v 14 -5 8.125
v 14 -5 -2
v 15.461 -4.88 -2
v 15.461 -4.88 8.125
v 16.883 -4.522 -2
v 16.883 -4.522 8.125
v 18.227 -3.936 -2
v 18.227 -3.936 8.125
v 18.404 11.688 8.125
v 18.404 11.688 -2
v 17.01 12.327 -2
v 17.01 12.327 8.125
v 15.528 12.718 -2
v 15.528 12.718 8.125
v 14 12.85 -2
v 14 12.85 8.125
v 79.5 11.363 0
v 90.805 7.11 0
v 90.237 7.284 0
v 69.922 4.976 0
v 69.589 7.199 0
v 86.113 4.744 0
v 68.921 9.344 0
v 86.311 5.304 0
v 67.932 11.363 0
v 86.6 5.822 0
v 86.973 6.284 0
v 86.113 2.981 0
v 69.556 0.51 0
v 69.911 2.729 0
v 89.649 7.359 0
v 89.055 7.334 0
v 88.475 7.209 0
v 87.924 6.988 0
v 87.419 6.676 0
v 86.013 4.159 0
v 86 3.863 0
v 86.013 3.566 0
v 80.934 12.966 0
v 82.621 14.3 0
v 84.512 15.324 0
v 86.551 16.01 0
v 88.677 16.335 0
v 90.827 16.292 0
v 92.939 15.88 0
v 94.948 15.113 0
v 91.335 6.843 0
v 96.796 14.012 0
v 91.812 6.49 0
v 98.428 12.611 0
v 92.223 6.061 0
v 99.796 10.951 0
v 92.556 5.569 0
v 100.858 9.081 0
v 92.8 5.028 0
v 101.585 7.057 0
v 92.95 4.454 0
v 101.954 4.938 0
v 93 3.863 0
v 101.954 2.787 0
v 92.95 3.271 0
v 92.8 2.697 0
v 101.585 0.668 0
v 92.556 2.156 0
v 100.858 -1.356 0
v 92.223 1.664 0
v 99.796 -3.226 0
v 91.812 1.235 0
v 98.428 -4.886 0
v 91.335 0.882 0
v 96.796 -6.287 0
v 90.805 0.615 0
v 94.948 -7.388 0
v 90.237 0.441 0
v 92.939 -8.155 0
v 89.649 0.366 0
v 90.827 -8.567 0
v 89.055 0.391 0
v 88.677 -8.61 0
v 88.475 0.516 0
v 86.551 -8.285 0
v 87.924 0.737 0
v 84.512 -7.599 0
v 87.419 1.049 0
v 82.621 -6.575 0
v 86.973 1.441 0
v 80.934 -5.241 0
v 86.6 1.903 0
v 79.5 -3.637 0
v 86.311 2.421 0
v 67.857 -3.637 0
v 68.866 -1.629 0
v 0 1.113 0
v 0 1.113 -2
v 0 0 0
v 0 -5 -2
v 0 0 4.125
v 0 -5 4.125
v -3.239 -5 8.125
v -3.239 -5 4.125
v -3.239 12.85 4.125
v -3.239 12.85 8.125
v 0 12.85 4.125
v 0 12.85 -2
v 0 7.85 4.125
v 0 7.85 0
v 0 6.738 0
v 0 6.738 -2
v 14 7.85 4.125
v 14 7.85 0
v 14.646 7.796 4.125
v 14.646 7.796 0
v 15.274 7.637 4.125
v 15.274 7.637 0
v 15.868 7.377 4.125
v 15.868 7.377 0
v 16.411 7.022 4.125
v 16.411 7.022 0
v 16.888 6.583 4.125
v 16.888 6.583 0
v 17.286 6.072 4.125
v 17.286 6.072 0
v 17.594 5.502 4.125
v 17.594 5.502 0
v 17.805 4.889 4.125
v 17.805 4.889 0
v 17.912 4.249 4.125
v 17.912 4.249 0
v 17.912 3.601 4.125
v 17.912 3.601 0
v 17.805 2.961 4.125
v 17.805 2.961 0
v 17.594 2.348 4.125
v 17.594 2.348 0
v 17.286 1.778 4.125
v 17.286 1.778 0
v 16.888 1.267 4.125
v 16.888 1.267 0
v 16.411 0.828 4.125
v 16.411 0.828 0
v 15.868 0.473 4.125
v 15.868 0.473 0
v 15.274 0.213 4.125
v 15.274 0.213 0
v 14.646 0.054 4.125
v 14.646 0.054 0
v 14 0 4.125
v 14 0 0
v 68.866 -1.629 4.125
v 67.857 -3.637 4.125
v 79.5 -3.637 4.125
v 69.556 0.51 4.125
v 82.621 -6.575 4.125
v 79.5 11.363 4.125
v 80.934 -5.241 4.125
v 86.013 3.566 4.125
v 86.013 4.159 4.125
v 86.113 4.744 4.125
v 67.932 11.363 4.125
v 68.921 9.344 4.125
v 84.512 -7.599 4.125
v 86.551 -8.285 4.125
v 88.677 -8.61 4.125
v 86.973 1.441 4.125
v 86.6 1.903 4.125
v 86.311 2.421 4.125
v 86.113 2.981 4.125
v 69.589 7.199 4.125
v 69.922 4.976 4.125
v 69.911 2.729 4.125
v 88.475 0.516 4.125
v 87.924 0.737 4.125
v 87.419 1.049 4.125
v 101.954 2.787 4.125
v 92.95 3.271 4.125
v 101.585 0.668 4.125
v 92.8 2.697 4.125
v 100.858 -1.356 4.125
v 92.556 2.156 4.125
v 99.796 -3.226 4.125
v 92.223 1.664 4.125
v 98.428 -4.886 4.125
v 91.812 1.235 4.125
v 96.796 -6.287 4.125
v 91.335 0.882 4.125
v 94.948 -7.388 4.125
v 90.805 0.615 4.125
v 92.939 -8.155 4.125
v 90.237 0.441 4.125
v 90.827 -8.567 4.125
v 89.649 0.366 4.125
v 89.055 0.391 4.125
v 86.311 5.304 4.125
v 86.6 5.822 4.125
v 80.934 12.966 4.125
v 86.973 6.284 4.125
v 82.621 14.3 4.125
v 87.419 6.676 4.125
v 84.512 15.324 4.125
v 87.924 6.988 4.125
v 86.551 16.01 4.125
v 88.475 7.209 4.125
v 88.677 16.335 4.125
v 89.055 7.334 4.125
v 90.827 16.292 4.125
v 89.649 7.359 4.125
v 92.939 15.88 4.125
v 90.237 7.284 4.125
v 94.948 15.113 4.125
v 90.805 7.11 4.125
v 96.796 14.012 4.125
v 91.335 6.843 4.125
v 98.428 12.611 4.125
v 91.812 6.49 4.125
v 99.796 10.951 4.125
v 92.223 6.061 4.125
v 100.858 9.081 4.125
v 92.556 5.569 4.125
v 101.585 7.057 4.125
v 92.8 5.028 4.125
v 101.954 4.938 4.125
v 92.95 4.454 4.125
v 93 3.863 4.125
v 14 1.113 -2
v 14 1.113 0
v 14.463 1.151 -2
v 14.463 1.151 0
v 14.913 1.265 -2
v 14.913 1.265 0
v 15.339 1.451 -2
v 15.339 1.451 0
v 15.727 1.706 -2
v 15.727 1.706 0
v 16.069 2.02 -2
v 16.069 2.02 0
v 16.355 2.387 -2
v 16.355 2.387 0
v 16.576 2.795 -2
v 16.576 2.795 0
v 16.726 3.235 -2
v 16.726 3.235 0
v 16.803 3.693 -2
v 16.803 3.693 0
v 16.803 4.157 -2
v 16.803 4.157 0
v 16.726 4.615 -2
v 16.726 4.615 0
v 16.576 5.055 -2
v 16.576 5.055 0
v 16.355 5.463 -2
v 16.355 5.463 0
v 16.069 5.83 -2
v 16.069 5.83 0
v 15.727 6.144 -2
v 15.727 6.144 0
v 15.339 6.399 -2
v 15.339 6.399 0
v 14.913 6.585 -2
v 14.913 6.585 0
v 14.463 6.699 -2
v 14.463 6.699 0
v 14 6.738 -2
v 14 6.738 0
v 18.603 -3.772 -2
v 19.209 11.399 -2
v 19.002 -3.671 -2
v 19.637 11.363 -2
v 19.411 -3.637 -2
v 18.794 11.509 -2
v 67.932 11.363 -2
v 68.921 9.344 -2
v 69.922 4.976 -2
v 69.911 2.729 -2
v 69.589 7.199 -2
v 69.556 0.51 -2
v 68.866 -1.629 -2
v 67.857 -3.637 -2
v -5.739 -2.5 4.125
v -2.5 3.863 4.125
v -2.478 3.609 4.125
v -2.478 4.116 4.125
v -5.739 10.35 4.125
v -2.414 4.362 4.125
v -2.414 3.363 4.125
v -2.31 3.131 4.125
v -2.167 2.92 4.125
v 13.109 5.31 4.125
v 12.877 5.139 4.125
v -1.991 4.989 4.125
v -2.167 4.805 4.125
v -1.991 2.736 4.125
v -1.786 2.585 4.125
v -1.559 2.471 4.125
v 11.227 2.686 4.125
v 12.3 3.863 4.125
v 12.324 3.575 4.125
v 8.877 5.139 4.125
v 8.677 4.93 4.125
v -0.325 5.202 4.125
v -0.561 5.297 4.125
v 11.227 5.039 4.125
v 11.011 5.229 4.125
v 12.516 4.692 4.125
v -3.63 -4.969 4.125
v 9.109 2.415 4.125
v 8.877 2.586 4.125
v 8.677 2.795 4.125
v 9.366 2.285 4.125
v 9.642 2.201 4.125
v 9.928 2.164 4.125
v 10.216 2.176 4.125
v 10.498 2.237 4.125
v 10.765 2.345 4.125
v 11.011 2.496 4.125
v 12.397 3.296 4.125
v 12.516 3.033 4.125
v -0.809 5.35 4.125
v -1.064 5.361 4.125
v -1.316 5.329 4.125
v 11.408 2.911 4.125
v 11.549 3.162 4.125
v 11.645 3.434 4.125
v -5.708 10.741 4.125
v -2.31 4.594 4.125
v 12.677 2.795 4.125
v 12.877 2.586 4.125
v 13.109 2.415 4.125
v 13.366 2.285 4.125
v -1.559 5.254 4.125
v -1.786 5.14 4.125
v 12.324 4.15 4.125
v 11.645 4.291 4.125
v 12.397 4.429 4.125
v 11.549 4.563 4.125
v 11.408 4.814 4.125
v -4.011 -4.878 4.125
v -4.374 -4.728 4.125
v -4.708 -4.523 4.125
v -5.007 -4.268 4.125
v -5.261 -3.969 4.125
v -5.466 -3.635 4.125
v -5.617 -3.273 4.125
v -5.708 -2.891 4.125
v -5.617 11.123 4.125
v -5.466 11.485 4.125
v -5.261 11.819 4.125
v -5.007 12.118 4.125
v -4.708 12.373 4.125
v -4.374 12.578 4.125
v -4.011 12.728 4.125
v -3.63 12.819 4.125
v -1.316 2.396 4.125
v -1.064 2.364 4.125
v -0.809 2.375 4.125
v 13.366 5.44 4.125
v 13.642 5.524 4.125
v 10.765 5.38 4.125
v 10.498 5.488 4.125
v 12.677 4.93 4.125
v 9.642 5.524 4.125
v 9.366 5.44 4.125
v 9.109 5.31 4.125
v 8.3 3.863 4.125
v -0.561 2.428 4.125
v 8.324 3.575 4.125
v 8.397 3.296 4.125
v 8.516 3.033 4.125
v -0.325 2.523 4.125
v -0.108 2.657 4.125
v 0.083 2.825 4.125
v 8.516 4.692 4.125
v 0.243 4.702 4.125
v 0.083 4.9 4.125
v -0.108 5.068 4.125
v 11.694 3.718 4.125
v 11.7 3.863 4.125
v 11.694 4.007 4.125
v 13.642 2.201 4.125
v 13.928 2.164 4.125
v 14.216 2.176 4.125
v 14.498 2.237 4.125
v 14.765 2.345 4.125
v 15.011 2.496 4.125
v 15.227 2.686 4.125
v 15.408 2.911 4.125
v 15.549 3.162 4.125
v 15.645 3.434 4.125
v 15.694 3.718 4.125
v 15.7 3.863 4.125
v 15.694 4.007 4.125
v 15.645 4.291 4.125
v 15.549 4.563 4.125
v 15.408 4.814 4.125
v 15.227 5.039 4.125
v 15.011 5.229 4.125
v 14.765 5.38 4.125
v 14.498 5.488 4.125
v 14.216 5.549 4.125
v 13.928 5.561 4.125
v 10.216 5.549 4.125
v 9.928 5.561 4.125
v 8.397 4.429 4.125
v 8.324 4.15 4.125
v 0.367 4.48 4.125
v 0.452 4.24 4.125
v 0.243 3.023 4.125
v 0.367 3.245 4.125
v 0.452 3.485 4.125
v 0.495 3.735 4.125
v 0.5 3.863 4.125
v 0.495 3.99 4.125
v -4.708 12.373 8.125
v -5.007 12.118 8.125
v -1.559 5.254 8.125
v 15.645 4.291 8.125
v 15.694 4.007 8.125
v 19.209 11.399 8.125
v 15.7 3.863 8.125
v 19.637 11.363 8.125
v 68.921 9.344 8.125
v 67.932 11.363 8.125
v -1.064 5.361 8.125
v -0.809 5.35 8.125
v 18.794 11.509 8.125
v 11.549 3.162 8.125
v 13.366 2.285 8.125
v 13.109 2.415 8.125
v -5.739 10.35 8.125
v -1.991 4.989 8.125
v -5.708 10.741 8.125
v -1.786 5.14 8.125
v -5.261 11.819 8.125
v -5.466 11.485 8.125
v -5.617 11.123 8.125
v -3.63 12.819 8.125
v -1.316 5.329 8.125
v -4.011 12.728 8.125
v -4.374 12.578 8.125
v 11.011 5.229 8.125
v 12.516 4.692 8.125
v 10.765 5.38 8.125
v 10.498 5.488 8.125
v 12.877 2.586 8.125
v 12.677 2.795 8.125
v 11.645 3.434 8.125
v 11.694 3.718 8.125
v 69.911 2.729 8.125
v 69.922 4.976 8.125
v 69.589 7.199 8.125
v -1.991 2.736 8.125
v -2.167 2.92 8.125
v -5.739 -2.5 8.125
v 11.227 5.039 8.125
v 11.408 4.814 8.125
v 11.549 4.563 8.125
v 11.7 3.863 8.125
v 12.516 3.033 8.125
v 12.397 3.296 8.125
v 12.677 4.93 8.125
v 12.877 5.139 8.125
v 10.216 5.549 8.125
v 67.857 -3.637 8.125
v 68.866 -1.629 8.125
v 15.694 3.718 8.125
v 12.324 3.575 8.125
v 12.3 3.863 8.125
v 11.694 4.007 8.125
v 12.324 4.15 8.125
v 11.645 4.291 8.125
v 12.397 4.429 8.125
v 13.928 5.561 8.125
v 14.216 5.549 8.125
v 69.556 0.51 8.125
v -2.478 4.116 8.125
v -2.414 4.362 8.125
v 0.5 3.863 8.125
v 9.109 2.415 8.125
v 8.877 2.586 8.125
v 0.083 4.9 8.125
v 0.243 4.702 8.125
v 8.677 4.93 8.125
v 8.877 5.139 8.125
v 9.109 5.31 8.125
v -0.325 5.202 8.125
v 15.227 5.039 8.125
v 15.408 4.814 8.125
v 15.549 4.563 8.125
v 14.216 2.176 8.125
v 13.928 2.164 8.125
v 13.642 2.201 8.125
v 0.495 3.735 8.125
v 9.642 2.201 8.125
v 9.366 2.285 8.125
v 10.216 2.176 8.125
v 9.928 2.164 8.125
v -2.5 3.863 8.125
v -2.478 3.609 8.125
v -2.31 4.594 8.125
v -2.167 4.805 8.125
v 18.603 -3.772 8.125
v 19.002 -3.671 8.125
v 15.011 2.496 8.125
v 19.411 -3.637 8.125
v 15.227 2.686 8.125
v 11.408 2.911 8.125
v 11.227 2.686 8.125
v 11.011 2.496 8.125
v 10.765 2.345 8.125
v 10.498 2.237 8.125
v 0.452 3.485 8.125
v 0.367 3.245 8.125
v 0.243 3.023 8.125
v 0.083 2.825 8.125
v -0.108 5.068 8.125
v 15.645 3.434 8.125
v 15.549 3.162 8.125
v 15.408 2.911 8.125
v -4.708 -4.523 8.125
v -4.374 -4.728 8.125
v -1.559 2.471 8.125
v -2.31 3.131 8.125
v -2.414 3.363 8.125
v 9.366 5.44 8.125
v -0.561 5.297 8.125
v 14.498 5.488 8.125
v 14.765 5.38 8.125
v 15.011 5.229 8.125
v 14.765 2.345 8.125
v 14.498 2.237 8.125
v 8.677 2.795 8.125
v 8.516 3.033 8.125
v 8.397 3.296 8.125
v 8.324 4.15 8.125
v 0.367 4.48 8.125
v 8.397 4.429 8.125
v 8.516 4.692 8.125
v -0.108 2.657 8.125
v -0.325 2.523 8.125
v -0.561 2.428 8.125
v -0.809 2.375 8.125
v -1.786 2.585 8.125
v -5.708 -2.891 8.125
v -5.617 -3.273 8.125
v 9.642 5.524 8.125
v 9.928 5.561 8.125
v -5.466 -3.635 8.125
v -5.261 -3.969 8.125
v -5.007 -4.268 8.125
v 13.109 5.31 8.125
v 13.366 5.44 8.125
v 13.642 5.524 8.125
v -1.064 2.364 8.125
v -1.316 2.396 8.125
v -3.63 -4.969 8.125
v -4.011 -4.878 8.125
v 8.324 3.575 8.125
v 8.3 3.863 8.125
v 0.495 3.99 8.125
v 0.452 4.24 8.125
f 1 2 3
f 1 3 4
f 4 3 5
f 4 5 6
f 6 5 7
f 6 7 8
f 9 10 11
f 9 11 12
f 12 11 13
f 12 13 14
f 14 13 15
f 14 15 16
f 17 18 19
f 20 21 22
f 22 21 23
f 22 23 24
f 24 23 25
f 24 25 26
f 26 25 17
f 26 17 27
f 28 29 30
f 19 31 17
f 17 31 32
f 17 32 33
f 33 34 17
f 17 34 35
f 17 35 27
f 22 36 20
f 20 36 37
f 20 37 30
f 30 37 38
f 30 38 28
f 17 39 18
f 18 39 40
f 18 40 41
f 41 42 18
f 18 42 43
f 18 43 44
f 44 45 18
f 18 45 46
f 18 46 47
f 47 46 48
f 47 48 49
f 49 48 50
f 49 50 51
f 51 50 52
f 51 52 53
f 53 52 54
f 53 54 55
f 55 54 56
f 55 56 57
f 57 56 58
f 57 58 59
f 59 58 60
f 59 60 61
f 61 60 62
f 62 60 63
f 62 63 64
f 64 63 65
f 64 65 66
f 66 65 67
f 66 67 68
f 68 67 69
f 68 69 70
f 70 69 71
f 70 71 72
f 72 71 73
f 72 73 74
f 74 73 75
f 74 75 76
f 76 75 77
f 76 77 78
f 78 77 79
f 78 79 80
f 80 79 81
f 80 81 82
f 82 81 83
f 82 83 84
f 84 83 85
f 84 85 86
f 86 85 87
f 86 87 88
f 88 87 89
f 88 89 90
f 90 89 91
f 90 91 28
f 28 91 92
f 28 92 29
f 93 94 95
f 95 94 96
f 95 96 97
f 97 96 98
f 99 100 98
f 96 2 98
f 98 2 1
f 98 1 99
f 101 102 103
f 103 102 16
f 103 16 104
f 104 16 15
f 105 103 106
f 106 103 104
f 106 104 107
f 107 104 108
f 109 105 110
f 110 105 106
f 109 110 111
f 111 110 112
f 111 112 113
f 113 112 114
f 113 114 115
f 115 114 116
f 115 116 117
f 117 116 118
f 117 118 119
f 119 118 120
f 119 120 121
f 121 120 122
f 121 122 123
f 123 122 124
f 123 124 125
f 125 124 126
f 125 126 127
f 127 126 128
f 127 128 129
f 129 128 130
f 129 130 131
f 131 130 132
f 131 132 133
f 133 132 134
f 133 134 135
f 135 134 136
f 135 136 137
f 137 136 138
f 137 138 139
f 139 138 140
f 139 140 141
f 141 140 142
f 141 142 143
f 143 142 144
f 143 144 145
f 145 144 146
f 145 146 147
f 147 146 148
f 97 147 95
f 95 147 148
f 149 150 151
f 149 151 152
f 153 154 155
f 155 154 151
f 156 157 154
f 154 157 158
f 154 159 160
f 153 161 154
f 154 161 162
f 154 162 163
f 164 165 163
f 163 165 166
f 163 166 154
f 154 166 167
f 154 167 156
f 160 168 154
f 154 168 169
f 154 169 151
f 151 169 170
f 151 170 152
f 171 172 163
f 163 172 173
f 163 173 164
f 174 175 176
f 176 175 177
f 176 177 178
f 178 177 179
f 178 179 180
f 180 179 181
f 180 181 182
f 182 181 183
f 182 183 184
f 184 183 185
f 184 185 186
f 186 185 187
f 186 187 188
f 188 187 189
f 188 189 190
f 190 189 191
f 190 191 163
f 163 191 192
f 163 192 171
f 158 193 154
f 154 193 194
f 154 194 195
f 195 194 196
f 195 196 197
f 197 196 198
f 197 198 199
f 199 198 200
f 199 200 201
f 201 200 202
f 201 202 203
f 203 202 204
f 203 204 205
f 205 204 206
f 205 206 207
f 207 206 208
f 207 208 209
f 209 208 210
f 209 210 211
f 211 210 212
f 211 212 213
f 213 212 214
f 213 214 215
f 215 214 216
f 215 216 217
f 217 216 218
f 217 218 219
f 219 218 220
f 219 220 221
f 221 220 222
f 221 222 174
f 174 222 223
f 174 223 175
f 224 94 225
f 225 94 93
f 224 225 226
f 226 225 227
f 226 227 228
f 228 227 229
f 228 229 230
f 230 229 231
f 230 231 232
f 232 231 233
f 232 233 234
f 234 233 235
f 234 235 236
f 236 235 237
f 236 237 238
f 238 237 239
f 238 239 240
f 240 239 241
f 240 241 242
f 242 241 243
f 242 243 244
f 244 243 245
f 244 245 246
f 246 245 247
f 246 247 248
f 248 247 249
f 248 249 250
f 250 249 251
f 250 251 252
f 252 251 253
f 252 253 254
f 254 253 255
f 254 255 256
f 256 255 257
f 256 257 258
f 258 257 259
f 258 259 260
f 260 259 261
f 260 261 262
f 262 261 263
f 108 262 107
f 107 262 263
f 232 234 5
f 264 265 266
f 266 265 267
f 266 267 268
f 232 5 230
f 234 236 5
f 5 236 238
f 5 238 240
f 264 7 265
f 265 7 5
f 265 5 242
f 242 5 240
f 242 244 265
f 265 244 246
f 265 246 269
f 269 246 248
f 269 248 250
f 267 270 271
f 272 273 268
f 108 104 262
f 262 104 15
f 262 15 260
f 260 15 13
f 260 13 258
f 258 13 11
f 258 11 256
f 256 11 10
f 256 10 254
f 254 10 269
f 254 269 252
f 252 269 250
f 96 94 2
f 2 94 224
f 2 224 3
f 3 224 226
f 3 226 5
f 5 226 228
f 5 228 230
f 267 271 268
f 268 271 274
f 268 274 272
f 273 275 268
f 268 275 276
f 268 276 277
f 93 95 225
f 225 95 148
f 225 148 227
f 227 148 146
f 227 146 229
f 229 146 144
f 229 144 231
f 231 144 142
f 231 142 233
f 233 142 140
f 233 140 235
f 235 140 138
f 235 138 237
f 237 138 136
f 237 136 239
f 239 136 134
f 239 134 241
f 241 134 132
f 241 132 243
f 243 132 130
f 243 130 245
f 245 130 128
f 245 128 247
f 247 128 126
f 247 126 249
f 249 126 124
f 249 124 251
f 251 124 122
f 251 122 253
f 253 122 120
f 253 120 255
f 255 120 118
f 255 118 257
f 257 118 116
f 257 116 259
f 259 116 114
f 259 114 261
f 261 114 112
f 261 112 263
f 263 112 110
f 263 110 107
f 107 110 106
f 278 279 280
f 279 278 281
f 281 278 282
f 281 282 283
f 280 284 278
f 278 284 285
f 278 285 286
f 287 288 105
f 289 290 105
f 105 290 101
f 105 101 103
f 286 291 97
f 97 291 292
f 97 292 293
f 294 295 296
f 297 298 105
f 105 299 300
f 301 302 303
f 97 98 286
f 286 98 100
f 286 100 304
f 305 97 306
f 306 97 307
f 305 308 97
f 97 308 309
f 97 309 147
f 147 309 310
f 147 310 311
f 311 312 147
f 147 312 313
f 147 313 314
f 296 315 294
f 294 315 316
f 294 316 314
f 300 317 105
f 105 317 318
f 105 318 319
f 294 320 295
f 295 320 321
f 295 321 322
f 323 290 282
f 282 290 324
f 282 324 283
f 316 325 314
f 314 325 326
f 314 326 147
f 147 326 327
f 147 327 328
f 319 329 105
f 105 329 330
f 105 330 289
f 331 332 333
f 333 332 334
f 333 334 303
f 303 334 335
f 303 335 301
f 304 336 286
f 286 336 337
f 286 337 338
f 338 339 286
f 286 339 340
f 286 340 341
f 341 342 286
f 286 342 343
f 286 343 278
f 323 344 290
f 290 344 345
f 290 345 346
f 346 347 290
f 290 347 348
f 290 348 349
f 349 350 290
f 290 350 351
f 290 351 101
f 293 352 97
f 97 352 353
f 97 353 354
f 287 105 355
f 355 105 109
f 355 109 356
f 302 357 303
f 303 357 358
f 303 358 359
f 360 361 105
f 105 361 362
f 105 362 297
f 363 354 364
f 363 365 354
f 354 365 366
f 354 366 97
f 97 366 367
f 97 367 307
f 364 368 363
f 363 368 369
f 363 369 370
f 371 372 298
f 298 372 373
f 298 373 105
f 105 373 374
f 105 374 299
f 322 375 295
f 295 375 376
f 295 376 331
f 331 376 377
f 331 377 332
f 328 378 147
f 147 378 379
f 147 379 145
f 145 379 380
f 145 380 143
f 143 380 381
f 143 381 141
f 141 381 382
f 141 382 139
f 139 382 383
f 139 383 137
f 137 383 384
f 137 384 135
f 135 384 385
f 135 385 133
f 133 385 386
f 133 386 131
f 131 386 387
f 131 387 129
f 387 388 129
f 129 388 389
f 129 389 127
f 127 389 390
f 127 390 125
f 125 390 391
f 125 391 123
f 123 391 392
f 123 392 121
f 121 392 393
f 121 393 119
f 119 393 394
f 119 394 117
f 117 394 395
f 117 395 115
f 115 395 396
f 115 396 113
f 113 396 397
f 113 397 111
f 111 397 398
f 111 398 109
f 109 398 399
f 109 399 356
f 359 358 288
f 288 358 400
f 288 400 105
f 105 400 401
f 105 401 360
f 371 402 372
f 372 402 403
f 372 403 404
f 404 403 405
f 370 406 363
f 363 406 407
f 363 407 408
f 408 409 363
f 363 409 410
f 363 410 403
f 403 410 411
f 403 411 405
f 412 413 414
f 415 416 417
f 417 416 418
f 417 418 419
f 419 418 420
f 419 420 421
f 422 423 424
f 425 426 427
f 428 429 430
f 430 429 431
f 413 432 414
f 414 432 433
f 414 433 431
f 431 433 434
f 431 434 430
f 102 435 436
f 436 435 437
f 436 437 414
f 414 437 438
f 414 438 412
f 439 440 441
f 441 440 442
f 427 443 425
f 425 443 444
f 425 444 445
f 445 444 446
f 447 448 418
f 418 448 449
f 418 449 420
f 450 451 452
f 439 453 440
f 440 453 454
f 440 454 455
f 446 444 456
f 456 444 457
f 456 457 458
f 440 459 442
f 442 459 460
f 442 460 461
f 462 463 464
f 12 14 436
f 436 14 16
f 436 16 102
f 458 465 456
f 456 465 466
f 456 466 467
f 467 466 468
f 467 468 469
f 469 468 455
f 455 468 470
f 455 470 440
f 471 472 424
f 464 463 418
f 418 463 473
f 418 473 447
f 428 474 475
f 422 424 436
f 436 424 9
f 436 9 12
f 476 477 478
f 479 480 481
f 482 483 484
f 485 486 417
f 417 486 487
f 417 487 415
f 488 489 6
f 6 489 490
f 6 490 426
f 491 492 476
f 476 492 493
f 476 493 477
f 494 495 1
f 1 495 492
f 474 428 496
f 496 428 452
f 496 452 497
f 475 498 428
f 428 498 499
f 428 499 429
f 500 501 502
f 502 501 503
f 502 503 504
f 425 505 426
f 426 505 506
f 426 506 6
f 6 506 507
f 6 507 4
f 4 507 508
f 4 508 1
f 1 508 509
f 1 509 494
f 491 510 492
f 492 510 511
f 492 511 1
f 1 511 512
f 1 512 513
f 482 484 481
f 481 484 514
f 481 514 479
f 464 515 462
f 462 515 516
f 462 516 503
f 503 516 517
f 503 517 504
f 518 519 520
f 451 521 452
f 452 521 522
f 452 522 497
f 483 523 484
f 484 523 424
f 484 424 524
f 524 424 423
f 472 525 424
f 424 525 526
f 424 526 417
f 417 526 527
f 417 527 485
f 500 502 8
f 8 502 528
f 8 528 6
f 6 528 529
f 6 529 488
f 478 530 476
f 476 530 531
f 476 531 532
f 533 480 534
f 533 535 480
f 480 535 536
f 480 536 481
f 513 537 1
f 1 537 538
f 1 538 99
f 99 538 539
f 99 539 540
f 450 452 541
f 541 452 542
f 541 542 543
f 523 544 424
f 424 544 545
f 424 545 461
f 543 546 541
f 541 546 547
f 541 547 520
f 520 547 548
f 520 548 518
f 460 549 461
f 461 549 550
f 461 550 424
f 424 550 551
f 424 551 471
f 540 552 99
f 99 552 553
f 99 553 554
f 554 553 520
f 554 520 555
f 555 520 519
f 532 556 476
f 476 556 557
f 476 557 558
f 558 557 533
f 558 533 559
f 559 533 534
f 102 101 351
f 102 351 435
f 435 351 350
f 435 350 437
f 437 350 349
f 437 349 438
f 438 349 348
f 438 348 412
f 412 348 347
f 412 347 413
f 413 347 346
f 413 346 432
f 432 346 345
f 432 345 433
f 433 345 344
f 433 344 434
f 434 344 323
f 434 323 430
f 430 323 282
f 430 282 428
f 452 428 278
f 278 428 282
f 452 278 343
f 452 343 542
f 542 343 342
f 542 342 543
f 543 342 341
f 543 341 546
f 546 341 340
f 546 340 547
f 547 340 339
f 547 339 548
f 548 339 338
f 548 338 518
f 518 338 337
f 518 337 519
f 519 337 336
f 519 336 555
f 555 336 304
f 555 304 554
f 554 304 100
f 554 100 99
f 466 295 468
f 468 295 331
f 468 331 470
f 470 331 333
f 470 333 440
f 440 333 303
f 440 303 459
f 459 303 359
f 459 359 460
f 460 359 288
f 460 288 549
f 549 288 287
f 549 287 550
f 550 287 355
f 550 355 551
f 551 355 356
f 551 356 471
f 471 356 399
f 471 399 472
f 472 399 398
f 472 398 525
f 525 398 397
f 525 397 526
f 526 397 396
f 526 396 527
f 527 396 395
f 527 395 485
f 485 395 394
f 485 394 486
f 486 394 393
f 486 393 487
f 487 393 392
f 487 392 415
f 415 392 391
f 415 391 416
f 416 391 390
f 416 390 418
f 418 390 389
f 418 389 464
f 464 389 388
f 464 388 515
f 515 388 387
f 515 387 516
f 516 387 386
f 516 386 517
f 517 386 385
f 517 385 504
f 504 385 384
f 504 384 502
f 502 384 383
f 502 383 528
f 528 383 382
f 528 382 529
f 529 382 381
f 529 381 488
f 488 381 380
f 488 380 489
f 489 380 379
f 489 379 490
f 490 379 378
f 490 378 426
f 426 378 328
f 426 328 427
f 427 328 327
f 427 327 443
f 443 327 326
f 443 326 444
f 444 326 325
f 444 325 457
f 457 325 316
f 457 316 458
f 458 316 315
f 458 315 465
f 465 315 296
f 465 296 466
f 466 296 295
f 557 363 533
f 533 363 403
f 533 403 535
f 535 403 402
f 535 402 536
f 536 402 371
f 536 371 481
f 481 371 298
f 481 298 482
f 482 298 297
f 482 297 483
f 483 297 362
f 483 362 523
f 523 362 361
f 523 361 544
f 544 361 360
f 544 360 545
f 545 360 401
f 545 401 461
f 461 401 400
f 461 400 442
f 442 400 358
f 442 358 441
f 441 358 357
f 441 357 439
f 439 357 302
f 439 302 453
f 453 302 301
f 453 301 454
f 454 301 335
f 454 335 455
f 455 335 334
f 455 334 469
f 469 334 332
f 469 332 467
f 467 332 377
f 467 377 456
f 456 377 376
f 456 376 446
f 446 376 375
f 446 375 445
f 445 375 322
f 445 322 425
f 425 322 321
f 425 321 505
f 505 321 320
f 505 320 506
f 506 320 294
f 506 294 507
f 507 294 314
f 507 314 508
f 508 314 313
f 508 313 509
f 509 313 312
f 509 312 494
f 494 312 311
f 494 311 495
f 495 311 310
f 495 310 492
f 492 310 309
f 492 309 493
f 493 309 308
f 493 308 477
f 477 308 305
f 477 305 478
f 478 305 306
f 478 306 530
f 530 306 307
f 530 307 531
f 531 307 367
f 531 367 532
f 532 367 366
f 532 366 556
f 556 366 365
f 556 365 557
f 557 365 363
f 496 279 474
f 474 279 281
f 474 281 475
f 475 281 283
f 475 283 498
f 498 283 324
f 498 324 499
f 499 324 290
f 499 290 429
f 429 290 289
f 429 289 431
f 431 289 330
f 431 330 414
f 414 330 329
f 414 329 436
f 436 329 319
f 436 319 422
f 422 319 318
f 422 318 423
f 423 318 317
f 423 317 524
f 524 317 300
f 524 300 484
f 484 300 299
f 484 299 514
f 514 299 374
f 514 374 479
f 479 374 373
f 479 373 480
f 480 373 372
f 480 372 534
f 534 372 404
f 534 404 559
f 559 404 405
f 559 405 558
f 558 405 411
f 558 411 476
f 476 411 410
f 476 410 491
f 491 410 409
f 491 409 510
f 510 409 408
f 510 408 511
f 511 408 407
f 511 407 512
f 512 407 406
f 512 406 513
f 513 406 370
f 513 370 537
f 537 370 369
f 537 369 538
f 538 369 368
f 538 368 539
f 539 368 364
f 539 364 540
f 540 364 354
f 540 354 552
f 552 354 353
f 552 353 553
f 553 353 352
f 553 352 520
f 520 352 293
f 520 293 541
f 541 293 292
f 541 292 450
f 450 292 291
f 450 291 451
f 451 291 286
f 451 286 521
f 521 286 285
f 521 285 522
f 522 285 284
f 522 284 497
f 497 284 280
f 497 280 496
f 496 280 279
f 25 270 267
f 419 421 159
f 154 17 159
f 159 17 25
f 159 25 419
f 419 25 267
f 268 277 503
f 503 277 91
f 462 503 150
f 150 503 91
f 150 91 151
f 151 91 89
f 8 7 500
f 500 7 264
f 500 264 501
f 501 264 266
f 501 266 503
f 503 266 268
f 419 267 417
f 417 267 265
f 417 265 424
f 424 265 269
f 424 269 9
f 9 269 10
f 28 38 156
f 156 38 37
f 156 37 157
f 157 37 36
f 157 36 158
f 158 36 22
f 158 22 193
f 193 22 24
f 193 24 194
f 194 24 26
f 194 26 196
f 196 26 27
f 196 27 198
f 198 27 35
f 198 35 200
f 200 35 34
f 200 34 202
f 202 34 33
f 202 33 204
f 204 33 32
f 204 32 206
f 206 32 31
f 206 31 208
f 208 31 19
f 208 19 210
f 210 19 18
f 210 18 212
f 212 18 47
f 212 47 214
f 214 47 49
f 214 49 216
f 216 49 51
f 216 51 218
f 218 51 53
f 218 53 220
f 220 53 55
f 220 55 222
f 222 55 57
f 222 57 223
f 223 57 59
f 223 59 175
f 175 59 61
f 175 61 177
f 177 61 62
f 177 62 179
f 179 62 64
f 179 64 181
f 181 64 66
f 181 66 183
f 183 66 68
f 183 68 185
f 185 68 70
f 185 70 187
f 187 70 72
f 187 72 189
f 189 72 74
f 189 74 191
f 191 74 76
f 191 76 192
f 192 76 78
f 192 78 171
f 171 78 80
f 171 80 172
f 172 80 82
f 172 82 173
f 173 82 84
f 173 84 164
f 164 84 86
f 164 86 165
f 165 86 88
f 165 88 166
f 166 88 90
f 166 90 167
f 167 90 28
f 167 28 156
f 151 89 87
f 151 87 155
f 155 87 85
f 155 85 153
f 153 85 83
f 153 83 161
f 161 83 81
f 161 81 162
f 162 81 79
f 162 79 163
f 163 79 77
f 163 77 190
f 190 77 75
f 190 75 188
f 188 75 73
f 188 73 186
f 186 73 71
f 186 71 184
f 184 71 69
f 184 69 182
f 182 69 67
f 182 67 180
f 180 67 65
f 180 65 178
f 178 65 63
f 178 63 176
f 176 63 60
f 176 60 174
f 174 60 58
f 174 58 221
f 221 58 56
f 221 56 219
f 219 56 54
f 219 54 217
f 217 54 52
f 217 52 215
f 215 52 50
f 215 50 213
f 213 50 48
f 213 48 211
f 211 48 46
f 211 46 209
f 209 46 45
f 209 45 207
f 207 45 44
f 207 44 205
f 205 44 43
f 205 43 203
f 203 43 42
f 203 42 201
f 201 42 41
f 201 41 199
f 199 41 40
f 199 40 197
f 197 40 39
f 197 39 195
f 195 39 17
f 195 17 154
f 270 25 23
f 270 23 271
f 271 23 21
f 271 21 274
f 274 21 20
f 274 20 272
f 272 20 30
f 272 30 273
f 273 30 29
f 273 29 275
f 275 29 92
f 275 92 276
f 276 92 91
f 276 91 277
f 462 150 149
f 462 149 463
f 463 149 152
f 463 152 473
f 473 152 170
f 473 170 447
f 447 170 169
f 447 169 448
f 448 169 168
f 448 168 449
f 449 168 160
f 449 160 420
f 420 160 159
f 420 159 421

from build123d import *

# Parameters (mm, degrees)
BOSS_EXTRUDE1_DEPTH  = 4.125
BOSS_EXTRUDE2_START  = 2
BOSS_EXTRUDE2_DEPTH  = 2
SKETCH3_R            = 1.7
SKETCH3_R_2          = 1.5
BOSS_EXTRUDE3_DEPTH  = 4
BOSS_EXTRUDE4_DEPTH  = 4.125
FILLET2_R            = 2.5
SKETCH9_R            = 3.5
CUT_EXTRUDE1_DEPTH   = 99.03896228
SKETCH10_R           = 12.5
SKETCH10_R_2         = 7.5
BOSS_EXTRUDE9_DEPTH  = 4.125
BOSS_EXTRUDE11_DEPTH = 2
BOSS_EXTRUDE12_DEPTH = 4


with BuildPart() as part:
    # Sketch1 → Boss-Extrude1 (new body)
    with BuildSketch(Plane.XY):
        with BuildLine():
            Line((0, 0), (14, 0))
            ThreePointArc((14, 0), (17.925, 3.925), (14, 7.85))
            Line((14, 7.85), (0, 7.85))
            Line((0, 7.85), (0, 12.85))
            Line((0, 12.85), (14, 12.85))
            ThreePointArc((14, 12.85), (22.925, 3.925), (14, -5))
            Line((14, -5), (0, -5))
            Line((0, -5), (0, 0))
        make_face()
    extrude(amount=BOSS_EXTRUDE1_DEPTH)

    # Sketch2 → Boss-Extrude2 (add)
    with BuildSketch(Plane(origin=(0, 0, 0), x_dir=(-1, 0, 0), z_dir=(0, 0, -1)).offset(BOSS_EXTRUDE2_START)):
        with BuildLine():
            Line((-14, 6.7375), (0, 6.7375))
            Line((0, 6.7375), (0, 7.85))
            Line((0, 7.85), (0, 12.85))
            Line((0, 12.85), (-14, 12.85))
            ThreePointArc((-14, 12.85), (-22.925, 3.925), (-14, -5))
            Line((-14, -5), (0, -5))
            Line((0, -5), (0, 0))
            Line((0, 0), (0, 1.1125))
            Line((0, 1.1125), (-14, 1.1125))
            ThreePointArc((-14, 1.1125), (-16.8125, 3.925), (-14, 6.7375))
        make_face()
    extrude(amount=-BOSS_EXTRUDE2_DEPTH)

    # Sketch3 → Boss-Extrude3 (add)
    with BuildSketch(Plane.XY.offset(4.125)):
        with BuildLine():
            Line((0, 12.85), (-3.238869072, 12.85))
            ThreePointArc((-3.238869072, 12.85), (-5.006636025, 12.117766953), (-5.738869072, 10.35))
            Line((-5.738869072, 10.35), (-5.738869072, -2.5))
            ThreePointArc((-5.738869072, -2.5), (-5.006636025, -4.267766953), (-3.238869072, -5))
            Line((-3.238869072, -5), (0, -5))
            Line((0, -5), (14, -5))
            ThreePointArc((14, -5), (18.764286268, -3.621999494), (22.057381748, 0.086481488))
            Line((22.057381748, 0.086481488), (22.057381748, 7.763518512))
            ThreePointArc((22.057381748, 7.763518512), (18.764286268, 11.471999494), (14, 12.85))
            Line((14, 12.85), (0, 12.85))
        make_face()
        with Locations((14, 3.8625)):
            Circle(SKETCH3_R, mode=Mode.SUBTRACT)
        with Locations((10, 3.8625)):
            Circle(SKETCH3_R, mode=Mode.SUBTRACT)
        with Locations((-1, 3.8625)):
            Circle(SKETCH3_R_2, mode=Mode.SUBTRACT)
    extrude(amount=BOSS_EXTRUDE3_DEPTH)

    # Sketch4 → Boss-Extrude4 (add)
    with BuildSketch(Plane.XY):
        with BuildLine():
            Line((89.5, 11.3625), (18.721642326, 11.3625))
            ThreePointArc((18.721642326, 11.3625), (22.8625, 3.8625), (18.721642326, -3.6375))
            Line((18.721642326, -3.6375), (89.5, -3.6375))
            ThreePointArc((89.5, -3.6375), (97, 3.8625), (89.5, 11.3625))
        make_face()
    extrude(amount=BOSS_EXTRUDE4_DEPTH)

    # Fillet2
    # the kernel refuses this fillet: 2.5 mm, written as the material it adds along each edge
    with BuildSketch(Plane(origin=(18.739643315, -3.6375, 4.125), x_dir=(1, 0, 0), z_dir=(0, 0, -1))) as fillet2_piece_1:
        with BuildLine():
            CenterArc((0.671153184, 2.5), FILLET2_R, 241.732240209, 28.267759791)
            ThreePointArc((-0.512828544, 0.298140044), (-0.253936624, 0.153331807), (0, 0))
            Line((0, 0), (0.671153184, 0))
        make_face()
    extrude(amount=4.125)
    with BuildSketch(Plane(origin=(18.933479376, 11.3625, 4.125), x_dir=(1, 0, 0), z_dir=(0, 0, -1))) as fillet2_piece_2:
        with BuildLine():
            CenterArc((0.703604866, -2.5), FILLET2_R, 90, 29.564237734)
            ThreePointArc((-0.52989278, -0.325492341), (-0.262110566, -0.167362816), (0, 0))
            Line((0, 0), (0.703604866, 0))
        make_face()
    extrude(amount=4.125)

    # Sketch9 → Cut-Extrude1 (cut, through all)
    with BuildSketch(Plane.XY.offset(4.125)):
        with Locations((89.5, 3.8625)):
            Circle(SKETCH9_R)
    extrude(amount=-CUT_EXTRUDE1_DEPTH, mode=Mode.SUBTRACT)

    # Sketch10 → Boss-Extrude9 (add)
    with BuildSketch(Plane(origin=(0, 0, 0), x_dir=(-1, 0, 0), z_dir=(0, 0, -1))):
        with Locations((-89.5, 3.8625)):
            Circle(SKETCH10_R)
        with Locations((-89.5, 3.8625)):
            Circle(SKETCH10_R_2, mode=Mode.SUBTRACT)
    extrude(amount=-BOSS_EXTRUDE9_DEPTH)

    # Sketch12 → Boss-Extrude11 (add)
    with BuildSketch(Plane(origin=(0, 0, 0), x_dir=(-1, 0, 0), z_dir=(0, 0, -1))):
        with BuildLine():
            Line((-19.637084242, 11.3625), (-67.931783013, 11.3625))
            ThreePointArc((-67.931783013, 11.3625), (-69.959582845, 3.85224622), (-67.857301806, -3.6375))
            Line((-67.857301806, -3.6375), (-19.410796499, -3.6375))
            ThreePointArc((-19.410796499, -3.6375), (-18.800325324, -3.713180519), (-18.22681477, -3.935640044))
            ThreePointArc((-18.22681477, -3.935640044), (-22.924428786, 3.824025558), (-18.403586596, 11.687992341))
            ThreePointArc((-18.403586596, 11.687992341), (-18.999224205, 11.445242344), (-19.637084242, 11.3625))
        make_face()
    extrude(amount=BOSS_EXTRUDE11_DEPTH)

    # Sketch13 → Boss-Extrude12 (add)
    with BuildSketch(Plane.XY.offset(4.125)):
        with BuildLine():
            Line((67.931783013, 11.3625), (19.637084242, 11.3625))
            ThreePointArc((19.637084242, 11.3625), (18.999224205, 11.445242344), (18.403586596, 11.687992341))
            ThreePointArc((18.403586596, 11.687992341), (20.532174732, 10.006637795), (22.057381748, 7.763518512))
            Line((22.057381748, 7.763518512), (22.057381748, 0.086481488))
            ThreePointArc((22.057381748, 0.086481488), (20.462951062, -2.230151385), (18.22681477, -3.935640044))
            ThreePointArc((18.22681477, -3.935640044), (18.800325324, -3.713180519), (19.410796499, -3.6375))
            Line((19.410796499, -3.6375), (67.857301806, -3.6375))
            ThreePointArc((67.857301806, -3.6375), (69.959582845, 3.85224622), (67.931783013, 11.3625))
        make_face()
    extrude(amount=BOSS_EXTRUDE12_DEPTH)


solid = part.part
